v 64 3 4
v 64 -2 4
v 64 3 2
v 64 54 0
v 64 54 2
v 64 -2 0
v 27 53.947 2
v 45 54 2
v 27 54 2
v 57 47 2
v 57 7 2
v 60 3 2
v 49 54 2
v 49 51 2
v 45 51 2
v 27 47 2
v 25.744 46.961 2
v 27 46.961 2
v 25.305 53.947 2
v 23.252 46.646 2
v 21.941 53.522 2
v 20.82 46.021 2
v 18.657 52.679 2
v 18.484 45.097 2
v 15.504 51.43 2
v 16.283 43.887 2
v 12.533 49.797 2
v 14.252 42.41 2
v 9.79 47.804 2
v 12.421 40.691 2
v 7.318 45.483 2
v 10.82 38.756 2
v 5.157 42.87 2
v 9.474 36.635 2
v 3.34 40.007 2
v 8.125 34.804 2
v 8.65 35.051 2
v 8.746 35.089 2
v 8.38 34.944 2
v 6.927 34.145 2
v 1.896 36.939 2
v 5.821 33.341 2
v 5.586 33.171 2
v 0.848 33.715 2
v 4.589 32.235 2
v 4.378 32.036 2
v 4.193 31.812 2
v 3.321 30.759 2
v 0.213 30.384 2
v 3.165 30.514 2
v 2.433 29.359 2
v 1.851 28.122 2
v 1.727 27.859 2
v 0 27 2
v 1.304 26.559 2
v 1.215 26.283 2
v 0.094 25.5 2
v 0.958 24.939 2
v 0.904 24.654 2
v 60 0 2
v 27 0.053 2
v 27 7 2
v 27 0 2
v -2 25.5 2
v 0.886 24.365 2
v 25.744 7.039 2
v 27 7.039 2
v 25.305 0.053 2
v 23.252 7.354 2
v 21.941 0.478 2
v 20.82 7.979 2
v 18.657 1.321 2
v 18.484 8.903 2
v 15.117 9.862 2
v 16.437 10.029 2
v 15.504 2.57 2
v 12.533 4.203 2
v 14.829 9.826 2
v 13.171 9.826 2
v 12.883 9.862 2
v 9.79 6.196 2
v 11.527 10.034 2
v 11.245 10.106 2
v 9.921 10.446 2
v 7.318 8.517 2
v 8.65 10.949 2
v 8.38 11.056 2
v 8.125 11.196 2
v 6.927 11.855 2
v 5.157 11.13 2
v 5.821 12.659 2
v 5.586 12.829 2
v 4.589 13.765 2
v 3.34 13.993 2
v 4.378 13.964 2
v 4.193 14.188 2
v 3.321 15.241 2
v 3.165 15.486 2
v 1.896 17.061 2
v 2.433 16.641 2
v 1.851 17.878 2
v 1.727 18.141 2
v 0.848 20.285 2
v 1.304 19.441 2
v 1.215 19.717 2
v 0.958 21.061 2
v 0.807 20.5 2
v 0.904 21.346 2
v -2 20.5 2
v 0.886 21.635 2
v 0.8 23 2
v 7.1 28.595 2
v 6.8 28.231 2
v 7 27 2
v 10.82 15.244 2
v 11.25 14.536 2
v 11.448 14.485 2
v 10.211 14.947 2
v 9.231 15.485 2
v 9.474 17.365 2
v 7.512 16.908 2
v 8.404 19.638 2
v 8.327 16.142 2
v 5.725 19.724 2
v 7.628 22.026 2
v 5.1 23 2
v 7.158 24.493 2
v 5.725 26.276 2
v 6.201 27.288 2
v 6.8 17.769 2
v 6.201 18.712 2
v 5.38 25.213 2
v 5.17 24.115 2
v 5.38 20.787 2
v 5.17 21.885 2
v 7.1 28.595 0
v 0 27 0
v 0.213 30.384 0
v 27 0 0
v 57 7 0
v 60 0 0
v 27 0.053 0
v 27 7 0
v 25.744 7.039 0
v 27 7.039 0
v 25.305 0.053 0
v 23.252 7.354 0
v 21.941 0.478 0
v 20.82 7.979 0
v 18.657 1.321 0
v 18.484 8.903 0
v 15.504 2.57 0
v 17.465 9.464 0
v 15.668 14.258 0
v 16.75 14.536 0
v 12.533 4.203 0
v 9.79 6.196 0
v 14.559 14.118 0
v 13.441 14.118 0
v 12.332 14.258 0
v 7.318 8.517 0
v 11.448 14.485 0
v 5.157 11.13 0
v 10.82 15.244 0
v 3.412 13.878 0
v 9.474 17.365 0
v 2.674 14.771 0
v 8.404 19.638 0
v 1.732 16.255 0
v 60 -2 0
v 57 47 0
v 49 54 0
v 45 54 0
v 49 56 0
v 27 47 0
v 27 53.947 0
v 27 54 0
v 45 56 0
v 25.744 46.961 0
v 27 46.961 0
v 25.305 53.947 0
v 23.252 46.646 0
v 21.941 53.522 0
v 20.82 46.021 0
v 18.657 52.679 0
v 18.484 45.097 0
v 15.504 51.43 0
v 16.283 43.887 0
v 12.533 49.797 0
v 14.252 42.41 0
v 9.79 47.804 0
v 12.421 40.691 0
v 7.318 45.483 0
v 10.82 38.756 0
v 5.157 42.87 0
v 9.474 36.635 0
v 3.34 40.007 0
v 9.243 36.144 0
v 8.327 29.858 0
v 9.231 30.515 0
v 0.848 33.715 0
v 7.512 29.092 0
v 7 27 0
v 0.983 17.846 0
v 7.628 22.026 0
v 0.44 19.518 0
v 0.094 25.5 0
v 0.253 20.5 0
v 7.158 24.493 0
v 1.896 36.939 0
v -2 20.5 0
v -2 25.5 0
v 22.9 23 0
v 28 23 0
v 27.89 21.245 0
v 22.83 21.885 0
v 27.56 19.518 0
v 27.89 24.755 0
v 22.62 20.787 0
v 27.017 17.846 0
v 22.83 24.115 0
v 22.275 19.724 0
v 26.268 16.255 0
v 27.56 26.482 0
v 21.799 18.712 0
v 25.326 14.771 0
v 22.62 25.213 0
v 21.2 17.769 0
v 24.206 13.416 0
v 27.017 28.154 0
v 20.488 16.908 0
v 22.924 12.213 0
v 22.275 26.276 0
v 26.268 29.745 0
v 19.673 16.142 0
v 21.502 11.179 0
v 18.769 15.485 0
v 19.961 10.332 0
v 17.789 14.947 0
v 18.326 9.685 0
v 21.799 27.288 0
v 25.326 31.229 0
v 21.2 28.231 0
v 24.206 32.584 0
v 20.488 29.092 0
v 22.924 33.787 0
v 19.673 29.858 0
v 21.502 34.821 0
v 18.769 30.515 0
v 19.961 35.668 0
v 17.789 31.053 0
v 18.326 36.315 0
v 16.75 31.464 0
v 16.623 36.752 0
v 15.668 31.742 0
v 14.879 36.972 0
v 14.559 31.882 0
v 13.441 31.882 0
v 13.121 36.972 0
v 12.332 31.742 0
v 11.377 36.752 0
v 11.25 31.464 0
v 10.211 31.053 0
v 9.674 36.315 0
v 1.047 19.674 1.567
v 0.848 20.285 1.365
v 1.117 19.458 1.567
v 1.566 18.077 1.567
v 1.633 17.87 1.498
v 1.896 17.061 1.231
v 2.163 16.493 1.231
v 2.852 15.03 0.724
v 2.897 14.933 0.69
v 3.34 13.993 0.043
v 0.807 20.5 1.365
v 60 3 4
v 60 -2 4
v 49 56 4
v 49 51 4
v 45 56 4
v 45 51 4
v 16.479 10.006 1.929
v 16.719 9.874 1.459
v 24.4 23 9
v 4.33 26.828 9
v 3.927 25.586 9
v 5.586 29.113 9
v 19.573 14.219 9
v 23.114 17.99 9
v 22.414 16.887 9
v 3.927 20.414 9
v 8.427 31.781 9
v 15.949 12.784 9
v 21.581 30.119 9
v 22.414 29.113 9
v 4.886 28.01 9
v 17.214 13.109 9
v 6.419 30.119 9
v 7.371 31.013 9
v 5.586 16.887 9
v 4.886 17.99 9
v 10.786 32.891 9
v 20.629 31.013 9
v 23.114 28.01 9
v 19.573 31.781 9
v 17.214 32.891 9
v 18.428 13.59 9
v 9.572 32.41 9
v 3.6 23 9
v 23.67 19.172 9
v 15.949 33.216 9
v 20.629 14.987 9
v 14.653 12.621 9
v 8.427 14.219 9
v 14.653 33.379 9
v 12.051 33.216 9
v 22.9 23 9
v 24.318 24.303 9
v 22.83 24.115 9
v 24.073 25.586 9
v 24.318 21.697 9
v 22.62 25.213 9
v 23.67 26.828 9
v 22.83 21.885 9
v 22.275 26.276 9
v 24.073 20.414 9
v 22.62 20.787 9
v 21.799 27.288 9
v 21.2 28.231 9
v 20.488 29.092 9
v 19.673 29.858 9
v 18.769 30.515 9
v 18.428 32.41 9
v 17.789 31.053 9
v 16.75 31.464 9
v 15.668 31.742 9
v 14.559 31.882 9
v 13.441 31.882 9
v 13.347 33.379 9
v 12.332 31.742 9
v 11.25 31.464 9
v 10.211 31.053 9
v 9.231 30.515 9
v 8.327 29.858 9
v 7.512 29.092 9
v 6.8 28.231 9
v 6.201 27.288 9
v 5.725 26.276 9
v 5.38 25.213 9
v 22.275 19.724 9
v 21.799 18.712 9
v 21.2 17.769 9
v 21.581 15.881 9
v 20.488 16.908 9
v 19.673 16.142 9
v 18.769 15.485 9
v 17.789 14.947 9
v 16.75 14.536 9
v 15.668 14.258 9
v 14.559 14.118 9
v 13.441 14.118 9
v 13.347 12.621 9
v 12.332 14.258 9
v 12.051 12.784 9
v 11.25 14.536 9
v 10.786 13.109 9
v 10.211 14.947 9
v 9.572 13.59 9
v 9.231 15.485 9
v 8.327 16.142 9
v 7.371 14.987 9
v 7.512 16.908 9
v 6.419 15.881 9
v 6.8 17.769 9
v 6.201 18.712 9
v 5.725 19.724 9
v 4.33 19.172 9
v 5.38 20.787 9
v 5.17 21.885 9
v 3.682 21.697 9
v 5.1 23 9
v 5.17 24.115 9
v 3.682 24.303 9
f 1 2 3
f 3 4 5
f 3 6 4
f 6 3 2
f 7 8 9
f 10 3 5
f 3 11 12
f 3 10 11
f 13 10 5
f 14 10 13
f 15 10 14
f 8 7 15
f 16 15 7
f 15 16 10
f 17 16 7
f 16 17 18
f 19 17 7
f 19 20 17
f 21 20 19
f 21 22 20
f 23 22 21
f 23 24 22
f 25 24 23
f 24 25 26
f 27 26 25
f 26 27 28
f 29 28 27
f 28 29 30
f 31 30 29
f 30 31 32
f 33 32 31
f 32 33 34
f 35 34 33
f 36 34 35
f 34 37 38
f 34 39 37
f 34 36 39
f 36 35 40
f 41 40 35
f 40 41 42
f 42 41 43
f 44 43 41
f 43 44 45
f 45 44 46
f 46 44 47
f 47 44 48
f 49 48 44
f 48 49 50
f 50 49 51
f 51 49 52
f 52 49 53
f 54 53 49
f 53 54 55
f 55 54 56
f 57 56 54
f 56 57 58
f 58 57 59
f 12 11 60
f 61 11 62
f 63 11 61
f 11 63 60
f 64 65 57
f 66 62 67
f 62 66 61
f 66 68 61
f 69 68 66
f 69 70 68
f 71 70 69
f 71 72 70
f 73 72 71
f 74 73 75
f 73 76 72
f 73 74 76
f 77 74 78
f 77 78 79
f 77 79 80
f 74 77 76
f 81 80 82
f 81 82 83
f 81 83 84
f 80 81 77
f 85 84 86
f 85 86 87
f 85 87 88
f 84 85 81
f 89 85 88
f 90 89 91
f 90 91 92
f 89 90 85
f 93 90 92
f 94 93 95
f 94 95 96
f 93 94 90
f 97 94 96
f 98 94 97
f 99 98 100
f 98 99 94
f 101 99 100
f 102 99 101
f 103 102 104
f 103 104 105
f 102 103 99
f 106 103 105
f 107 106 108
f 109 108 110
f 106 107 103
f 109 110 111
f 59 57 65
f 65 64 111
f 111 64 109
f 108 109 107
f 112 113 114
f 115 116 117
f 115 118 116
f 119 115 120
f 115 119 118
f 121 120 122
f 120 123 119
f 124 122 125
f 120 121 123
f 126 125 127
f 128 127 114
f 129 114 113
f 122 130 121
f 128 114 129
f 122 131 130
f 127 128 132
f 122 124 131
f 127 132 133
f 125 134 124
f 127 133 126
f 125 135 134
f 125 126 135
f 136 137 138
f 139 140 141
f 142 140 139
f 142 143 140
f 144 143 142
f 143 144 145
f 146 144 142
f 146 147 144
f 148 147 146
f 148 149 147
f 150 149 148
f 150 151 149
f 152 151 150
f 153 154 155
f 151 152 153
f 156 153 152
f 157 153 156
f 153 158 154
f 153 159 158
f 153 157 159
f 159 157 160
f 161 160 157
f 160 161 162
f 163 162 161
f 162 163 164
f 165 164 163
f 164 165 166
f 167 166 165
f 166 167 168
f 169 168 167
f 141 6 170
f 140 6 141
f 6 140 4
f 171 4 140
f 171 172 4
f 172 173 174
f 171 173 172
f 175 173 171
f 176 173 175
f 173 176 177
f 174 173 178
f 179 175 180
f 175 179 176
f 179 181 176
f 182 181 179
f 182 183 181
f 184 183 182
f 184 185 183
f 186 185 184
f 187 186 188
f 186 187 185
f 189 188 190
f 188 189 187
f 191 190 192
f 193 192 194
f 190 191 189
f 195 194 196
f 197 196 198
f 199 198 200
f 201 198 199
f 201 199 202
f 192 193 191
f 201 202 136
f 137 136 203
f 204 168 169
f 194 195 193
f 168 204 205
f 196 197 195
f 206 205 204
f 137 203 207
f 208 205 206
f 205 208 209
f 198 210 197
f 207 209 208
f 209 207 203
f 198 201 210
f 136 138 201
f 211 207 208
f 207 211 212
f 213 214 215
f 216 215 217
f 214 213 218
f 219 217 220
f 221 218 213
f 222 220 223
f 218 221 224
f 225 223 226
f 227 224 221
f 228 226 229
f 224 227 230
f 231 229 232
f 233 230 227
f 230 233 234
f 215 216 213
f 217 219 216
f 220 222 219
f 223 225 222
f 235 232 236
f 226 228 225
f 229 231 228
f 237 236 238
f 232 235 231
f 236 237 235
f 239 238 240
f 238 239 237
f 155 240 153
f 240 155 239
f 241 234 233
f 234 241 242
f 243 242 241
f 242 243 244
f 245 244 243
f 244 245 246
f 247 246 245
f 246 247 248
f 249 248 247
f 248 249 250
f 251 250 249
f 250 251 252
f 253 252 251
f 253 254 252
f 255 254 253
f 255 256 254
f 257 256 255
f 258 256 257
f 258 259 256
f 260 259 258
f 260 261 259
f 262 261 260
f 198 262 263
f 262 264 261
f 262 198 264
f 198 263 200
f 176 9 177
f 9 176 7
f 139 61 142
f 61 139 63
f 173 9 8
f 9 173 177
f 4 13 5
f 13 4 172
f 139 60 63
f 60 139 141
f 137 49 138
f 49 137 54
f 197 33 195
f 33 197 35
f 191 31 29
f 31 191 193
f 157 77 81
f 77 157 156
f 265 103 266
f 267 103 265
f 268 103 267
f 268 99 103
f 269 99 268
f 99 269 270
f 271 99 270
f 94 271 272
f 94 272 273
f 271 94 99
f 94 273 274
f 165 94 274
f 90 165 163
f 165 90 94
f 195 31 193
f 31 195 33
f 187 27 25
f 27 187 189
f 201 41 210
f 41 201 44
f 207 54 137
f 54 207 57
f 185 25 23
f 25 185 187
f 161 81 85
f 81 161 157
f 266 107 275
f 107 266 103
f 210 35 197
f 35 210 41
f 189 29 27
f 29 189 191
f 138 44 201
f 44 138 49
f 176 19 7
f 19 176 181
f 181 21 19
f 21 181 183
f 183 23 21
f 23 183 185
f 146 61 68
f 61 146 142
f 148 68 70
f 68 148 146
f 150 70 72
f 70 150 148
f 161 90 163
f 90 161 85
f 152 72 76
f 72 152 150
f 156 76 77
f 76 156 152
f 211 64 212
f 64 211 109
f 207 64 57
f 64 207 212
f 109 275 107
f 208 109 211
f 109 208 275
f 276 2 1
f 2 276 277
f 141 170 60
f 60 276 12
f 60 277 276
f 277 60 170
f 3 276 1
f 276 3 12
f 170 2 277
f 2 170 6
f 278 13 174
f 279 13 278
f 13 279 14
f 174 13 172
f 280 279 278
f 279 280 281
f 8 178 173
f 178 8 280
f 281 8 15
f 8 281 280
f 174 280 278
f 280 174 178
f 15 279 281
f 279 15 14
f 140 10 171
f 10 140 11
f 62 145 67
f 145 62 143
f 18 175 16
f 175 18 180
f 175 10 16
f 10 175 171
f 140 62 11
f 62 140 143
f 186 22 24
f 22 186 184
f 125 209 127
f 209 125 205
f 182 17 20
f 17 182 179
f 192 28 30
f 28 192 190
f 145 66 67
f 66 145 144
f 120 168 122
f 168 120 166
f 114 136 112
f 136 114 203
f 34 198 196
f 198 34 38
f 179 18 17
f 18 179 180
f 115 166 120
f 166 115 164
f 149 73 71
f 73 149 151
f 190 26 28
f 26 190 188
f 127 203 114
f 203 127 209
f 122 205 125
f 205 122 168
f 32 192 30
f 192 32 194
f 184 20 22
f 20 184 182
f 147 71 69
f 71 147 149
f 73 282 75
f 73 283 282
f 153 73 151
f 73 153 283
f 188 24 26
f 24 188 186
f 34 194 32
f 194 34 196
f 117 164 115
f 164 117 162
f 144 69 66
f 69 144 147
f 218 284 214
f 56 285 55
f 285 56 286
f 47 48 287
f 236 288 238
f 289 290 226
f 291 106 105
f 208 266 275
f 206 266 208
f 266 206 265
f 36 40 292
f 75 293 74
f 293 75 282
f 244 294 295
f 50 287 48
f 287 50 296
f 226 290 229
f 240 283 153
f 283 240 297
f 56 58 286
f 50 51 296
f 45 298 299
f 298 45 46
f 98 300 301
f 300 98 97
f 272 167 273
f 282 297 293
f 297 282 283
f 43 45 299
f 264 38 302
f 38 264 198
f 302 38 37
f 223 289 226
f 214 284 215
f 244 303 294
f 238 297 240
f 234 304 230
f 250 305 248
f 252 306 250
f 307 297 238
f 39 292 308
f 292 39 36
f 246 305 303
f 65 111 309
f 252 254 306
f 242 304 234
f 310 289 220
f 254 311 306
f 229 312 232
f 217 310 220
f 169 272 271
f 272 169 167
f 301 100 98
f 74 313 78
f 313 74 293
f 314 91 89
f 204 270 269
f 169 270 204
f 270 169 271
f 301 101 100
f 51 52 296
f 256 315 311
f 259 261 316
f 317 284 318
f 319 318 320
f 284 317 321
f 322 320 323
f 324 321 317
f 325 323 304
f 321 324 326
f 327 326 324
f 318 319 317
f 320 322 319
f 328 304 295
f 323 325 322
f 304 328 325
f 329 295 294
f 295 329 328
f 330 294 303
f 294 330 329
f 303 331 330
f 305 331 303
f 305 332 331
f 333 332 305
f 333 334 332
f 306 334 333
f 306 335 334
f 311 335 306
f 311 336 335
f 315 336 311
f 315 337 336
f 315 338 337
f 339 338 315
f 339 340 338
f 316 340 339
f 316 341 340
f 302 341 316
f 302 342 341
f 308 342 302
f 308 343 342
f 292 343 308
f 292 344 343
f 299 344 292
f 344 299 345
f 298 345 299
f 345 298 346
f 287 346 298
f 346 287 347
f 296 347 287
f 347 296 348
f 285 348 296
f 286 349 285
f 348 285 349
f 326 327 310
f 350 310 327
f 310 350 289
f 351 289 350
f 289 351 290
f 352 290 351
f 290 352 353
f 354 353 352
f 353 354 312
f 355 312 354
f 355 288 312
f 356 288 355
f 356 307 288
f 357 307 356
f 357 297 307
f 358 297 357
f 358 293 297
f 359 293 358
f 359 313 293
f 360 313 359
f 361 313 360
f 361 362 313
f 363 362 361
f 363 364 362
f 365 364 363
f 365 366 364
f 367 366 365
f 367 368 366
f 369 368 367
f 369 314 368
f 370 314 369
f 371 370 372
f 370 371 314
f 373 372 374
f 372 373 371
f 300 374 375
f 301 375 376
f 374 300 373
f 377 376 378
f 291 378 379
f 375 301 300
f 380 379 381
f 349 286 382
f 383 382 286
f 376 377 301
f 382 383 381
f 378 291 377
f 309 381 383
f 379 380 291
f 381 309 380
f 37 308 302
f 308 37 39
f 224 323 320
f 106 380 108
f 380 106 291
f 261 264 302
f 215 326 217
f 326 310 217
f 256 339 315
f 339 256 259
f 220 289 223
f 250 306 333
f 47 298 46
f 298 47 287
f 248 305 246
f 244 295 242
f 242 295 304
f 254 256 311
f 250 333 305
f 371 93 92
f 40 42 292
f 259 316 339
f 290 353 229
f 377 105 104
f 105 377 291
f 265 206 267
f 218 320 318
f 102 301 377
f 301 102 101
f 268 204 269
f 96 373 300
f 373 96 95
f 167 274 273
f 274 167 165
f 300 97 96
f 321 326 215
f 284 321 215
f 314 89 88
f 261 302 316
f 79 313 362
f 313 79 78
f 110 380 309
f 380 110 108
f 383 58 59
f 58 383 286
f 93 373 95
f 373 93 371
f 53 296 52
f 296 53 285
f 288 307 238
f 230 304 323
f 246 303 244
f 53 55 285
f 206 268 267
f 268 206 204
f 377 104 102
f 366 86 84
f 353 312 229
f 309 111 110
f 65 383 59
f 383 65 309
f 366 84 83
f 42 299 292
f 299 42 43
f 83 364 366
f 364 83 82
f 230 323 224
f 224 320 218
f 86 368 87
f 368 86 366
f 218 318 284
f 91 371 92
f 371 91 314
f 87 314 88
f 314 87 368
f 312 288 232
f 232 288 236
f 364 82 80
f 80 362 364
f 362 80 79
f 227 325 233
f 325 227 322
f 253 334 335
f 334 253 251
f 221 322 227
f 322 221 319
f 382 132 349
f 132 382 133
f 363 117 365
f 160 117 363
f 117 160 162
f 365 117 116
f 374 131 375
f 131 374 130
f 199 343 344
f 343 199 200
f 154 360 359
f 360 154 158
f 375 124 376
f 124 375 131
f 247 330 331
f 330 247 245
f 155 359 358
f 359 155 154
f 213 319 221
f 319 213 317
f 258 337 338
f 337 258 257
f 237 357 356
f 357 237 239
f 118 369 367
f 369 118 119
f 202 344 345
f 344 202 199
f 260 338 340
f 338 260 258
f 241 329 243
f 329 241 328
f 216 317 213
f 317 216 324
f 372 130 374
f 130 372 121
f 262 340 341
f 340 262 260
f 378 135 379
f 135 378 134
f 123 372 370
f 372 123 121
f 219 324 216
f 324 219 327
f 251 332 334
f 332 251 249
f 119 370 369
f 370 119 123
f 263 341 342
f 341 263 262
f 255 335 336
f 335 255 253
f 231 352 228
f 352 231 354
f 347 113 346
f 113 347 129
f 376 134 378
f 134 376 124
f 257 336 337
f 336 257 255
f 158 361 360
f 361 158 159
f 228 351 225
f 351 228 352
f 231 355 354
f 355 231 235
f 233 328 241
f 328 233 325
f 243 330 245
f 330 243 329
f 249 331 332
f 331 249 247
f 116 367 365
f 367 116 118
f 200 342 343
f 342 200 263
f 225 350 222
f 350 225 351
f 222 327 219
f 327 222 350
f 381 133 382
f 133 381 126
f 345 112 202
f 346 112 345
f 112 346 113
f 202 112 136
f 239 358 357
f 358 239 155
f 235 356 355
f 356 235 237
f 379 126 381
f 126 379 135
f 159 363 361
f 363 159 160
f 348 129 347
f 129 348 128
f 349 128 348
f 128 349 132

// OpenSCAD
// Itron Aquadis+ DN15 sensor mount for LJ18A3-8Z/BX (M18, Ø18mm)
// Sensor sensing distance: 8mm
// Meter: Itron Aquadis+ R500 16bar T50 (2023)

$fn = 50; // smoother curves for printing

sensor_d = 17;      // LJ18A3 body diameter
sensor_r = sensor_d / 2;  // 9mm
clearance = 0.4;    // printing tolerance

plate_w = 64;
plate_h = 54;
plate_t = 2;

l = 7;

// Sensor holder - tapered cylinder
holder_h = 9;
holder_r1 = 14;     // base radius (Ø28mm footprint)
holder_r2 = sensor_r + clearance + 1.5; // top radius: snug around sensor with wall

// Sensor hole: sized for the actual M18 sensor body + clearance
sensor_hole_r = sensor_r + clearance; // 9.4mm → Ø18.8mm

// Knob clearance
knob_r = 16; // large hole for knob clearance (Ø32mm)

// Corner cuts
corner_cut = 20;

// Base plate
difference() {
  union() {
    // Base plate
    translate([plate_h/2, 0,0]) cube([plate_w-plate_h/2, plate_h, plate_t]);
    translate([plate_h/2, plate_h/2]) cylinder(h = plate_t, r = plate_h/2);

    // Retention tabs ("ergots") - slightly taller for better grip on meter rim
    translate([-2, 20.5, 0]) cube([3, 5, 2]);   // bottom tab
    translate([60, -2, 0])   cube([4, 5, 4]);   // top-right tab
    translate([45, 51, 0])   cube([4, 5, 4]);   // left tab
  }
  union() {
    translate([plate_h/2, l, -1])
      cube([plate_w - l - plate_h/2, plate_h - 2*l, plate_t + 2]);
      
    translate([plate_h/2, plate_h/2, -1])
      cylinder(h = plate_t+2, r = (plate_h)/2-l);
  }
}

// Sensor holder
difference() {
  translate([14, 23, 0])  cylinder(h = holder_h, r1 = holder_r1, r2 = holder_r2);
  translate([14, 23, -1]) cylinder(h = holder_h + plate_t + 2, r = sensor_hole_r);
}
